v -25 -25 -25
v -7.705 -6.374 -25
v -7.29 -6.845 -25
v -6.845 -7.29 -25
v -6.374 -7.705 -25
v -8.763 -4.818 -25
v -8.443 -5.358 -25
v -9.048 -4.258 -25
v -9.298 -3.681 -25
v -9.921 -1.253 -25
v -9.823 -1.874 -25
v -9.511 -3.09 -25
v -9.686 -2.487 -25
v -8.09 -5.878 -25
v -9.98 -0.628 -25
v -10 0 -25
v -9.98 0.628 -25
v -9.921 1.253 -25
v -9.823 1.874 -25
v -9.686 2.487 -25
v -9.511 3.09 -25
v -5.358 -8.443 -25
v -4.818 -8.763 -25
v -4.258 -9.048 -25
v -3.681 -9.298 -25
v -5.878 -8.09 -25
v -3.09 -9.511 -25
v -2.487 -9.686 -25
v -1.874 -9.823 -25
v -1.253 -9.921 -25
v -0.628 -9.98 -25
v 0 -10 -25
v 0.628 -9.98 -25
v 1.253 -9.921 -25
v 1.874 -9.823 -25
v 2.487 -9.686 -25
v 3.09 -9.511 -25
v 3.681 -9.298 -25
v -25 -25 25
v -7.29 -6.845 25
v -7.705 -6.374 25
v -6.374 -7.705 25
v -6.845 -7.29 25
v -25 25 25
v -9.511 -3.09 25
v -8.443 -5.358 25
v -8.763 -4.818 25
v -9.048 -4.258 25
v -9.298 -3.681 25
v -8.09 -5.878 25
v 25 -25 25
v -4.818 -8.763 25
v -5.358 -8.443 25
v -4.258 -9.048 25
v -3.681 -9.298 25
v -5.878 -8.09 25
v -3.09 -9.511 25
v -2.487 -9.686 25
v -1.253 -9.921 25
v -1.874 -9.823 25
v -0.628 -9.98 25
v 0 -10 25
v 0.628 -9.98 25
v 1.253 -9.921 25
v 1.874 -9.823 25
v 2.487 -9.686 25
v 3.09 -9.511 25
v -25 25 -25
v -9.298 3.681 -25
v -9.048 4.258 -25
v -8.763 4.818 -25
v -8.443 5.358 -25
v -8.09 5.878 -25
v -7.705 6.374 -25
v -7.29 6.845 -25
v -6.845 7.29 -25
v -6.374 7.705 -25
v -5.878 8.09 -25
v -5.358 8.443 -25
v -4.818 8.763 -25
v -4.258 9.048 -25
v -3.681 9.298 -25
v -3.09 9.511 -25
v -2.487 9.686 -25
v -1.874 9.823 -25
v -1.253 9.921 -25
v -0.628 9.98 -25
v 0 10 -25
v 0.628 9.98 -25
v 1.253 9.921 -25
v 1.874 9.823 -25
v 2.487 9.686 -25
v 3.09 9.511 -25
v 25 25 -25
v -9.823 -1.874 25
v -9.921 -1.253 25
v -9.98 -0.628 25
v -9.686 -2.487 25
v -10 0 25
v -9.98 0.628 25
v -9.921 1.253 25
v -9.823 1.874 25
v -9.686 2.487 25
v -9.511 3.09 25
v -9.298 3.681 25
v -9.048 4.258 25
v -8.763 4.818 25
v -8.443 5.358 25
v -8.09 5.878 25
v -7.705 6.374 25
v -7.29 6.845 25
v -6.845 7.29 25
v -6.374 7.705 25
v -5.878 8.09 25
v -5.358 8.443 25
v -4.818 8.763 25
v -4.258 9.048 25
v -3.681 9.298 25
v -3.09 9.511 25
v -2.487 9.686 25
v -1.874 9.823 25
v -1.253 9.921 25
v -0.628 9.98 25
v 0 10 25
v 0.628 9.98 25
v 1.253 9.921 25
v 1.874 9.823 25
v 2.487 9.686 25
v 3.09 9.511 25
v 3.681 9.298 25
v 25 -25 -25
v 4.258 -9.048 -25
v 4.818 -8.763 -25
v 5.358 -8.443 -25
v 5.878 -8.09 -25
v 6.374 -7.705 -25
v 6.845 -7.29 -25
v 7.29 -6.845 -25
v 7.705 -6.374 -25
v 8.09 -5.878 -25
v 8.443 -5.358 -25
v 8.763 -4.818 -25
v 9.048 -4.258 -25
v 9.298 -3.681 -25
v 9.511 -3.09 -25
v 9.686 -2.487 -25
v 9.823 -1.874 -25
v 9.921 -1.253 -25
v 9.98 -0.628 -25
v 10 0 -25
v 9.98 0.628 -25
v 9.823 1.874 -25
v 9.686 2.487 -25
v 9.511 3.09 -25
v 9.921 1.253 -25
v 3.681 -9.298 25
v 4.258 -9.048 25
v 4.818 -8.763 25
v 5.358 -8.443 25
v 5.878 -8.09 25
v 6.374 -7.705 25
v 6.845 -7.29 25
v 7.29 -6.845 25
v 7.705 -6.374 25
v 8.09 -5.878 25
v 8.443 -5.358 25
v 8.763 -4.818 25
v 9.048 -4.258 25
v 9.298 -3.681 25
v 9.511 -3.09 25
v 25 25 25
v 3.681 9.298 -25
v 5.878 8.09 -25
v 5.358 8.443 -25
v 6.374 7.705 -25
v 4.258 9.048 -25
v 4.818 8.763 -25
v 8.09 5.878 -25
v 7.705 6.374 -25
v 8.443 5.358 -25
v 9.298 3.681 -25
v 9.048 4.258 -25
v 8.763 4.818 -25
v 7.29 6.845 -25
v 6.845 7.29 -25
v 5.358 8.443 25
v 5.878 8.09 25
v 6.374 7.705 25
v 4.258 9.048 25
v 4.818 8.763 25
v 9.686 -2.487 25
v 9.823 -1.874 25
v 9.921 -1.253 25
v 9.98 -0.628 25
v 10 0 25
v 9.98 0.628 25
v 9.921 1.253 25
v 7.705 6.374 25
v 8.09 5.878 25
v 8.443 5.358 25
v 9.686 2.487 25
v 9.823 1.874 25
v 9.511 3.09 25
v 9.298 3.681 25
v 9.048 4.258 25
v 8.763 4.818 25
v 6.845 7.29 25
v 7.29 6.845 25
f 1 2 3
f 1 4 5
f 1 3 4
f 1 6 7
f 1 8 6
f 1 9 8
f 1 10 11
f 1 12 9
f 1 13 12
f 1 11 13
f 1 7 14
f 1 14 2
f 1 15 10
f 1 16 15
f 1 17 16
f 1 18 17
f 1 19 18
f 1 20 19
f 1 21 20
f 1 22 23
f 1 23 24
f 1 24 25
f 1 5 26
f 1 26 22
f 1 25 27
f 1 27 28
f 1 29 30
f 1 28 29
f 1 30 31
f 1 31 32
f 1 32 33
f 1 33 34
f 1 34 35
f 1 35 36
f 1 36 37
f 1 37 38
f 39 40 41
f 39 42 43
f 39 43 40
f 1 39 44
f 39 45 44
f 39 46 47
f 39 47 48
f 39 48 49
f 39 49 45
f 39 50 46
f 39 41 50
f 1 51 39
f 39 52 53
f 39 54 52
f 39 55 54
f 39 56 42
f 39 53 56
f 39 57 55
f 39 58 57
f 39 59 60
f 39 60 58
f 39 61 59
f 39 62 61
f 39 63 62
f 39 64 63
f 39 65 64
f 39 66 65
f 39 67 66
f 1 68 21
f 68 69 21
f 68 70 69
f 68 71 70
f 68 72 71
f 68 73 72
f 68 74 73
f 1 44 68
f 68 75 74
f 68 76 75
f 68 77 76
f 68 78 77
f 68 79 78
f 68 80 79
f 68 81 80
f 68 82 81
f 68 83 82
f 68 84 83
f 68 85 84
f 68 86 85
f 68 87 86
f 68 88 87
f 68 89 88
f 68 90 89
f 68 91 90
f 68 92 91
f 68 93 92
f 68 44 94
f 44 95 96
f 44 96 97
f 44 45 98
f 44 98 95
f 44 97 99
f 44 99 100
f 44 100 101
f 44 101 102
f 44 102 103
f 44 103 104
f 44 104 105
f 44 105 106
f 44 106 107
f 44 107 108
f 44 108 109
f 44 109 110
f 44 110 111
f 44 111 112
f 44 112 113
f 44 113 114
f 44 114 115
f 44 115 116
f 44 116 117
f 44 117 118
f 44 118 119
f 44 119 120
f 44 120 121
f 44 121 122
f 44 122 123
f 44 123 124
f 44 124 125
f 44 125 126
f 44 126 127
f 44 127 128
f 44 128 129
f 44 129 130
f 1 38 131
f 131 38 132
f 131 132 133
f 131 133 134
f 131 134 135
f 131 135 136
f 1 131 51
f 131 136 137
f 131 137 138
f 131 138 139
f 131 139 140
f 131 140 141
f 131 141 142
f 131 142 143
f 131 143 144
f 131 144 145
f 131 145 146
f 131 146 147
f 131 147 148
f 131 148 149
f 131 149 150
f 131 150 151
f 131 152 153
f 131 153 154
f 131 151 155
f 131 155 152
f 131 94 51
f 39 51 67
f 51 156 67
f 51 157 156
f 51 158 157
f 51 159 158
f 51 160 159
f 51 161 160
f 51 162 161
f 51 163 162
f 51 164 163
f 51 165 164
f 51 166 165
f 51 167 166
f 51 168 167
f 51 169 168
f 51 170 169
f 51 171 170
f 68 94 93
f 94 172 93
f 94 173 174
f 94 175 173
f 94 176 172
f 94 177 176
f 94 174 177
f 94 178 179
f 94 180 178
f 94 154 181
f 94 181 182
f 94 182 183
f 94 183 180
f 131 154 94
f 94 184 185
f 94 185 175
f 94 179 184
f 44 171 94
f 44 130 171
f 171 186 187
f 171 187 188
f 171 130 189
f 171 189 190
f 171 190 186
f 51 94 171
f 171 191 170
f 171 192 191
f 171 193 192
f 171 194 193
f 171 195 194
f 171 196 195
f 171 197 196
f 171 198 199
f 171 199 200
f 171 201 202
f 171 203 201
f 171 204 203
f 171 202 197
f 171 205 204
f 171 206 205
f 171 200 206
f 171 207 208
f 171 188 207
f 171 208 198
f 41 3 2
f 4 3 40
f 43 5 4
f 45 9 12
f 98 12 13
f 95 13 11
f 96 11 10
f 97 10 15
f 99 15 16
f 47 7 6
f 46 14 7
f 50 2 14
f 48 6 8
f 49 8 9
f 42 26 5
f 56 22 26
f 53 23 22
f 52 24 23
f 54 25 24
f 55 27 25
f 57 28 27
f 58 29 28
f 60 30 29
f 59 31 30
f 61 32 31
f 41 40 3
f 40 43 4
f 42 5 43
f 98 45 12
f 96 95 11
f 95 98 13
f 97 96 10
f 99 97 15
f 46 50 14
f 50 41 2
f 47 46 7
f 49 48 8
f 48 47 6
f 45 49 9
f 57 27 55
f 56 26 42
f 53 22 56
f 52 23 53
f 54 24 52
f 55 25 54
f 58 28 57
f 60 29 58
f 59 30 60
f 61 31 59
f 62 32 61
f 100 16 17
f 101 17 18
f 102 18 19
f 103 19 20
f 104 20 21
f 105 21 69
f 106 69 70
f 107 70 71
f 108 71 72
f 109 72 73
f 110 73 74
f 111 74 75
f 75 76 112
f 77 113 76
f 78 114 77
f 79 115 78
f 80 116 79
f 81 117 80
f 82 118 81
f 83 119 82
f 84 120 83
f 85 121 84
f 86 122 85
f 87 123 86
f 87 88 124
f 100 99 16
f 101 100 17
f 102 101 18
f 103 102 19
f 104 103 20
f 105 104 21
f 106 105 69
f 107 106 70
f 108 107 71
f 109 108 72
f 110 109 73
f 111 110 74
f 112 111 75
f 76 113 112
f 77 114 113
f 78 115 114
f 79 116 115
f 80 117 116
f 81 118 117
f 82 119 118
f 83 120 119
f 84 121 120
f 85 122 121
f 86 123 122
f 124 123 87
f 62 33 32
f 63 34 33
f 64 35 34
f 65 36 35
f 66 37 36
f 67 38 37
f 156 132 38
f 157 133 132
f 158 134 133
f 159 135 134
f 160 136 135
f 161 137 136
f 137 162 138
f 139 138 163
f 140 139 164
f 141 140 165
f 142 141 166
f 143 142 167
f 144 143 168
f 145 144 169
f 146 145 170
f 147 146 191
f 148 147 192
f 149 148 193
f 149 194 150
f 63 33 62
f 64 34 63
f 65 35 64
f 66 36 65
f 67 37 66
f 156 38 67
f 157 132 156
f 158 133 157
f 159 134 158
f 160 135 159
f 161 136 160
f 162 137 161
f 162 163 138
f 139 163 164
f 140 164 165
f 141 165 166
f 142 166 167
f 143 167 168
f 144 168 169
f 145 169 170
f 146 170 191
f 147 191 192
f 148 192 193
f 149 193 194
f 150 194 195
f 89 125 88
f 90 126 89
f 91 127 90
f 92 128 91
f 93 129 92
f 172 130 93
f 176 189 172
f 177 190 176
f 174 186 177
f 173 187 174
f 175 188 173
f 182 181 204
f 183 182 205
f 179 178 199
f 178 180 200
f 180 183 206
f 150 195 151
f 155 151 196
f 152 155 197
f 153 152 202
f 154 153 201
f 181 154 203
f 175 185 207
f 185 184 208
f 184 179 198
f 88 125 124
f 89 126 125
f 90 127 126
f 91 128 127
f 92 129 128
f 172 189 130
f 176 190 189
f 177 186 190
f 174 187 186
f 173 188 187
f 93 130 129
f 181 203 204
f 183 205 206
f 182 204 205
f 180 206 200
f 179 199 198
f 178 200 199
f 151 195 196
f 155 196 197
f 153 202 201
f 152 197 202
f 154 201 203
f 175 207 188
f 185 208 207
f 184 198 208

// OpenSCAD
// 50mm 角の立方体の中央に、直径20mmの貫通穴をz軸方向に開ける
difference() {
    cube([50, 50, 50], center=true);
    cylinder(d=20, h=100, center=true, $fn=100);
}
